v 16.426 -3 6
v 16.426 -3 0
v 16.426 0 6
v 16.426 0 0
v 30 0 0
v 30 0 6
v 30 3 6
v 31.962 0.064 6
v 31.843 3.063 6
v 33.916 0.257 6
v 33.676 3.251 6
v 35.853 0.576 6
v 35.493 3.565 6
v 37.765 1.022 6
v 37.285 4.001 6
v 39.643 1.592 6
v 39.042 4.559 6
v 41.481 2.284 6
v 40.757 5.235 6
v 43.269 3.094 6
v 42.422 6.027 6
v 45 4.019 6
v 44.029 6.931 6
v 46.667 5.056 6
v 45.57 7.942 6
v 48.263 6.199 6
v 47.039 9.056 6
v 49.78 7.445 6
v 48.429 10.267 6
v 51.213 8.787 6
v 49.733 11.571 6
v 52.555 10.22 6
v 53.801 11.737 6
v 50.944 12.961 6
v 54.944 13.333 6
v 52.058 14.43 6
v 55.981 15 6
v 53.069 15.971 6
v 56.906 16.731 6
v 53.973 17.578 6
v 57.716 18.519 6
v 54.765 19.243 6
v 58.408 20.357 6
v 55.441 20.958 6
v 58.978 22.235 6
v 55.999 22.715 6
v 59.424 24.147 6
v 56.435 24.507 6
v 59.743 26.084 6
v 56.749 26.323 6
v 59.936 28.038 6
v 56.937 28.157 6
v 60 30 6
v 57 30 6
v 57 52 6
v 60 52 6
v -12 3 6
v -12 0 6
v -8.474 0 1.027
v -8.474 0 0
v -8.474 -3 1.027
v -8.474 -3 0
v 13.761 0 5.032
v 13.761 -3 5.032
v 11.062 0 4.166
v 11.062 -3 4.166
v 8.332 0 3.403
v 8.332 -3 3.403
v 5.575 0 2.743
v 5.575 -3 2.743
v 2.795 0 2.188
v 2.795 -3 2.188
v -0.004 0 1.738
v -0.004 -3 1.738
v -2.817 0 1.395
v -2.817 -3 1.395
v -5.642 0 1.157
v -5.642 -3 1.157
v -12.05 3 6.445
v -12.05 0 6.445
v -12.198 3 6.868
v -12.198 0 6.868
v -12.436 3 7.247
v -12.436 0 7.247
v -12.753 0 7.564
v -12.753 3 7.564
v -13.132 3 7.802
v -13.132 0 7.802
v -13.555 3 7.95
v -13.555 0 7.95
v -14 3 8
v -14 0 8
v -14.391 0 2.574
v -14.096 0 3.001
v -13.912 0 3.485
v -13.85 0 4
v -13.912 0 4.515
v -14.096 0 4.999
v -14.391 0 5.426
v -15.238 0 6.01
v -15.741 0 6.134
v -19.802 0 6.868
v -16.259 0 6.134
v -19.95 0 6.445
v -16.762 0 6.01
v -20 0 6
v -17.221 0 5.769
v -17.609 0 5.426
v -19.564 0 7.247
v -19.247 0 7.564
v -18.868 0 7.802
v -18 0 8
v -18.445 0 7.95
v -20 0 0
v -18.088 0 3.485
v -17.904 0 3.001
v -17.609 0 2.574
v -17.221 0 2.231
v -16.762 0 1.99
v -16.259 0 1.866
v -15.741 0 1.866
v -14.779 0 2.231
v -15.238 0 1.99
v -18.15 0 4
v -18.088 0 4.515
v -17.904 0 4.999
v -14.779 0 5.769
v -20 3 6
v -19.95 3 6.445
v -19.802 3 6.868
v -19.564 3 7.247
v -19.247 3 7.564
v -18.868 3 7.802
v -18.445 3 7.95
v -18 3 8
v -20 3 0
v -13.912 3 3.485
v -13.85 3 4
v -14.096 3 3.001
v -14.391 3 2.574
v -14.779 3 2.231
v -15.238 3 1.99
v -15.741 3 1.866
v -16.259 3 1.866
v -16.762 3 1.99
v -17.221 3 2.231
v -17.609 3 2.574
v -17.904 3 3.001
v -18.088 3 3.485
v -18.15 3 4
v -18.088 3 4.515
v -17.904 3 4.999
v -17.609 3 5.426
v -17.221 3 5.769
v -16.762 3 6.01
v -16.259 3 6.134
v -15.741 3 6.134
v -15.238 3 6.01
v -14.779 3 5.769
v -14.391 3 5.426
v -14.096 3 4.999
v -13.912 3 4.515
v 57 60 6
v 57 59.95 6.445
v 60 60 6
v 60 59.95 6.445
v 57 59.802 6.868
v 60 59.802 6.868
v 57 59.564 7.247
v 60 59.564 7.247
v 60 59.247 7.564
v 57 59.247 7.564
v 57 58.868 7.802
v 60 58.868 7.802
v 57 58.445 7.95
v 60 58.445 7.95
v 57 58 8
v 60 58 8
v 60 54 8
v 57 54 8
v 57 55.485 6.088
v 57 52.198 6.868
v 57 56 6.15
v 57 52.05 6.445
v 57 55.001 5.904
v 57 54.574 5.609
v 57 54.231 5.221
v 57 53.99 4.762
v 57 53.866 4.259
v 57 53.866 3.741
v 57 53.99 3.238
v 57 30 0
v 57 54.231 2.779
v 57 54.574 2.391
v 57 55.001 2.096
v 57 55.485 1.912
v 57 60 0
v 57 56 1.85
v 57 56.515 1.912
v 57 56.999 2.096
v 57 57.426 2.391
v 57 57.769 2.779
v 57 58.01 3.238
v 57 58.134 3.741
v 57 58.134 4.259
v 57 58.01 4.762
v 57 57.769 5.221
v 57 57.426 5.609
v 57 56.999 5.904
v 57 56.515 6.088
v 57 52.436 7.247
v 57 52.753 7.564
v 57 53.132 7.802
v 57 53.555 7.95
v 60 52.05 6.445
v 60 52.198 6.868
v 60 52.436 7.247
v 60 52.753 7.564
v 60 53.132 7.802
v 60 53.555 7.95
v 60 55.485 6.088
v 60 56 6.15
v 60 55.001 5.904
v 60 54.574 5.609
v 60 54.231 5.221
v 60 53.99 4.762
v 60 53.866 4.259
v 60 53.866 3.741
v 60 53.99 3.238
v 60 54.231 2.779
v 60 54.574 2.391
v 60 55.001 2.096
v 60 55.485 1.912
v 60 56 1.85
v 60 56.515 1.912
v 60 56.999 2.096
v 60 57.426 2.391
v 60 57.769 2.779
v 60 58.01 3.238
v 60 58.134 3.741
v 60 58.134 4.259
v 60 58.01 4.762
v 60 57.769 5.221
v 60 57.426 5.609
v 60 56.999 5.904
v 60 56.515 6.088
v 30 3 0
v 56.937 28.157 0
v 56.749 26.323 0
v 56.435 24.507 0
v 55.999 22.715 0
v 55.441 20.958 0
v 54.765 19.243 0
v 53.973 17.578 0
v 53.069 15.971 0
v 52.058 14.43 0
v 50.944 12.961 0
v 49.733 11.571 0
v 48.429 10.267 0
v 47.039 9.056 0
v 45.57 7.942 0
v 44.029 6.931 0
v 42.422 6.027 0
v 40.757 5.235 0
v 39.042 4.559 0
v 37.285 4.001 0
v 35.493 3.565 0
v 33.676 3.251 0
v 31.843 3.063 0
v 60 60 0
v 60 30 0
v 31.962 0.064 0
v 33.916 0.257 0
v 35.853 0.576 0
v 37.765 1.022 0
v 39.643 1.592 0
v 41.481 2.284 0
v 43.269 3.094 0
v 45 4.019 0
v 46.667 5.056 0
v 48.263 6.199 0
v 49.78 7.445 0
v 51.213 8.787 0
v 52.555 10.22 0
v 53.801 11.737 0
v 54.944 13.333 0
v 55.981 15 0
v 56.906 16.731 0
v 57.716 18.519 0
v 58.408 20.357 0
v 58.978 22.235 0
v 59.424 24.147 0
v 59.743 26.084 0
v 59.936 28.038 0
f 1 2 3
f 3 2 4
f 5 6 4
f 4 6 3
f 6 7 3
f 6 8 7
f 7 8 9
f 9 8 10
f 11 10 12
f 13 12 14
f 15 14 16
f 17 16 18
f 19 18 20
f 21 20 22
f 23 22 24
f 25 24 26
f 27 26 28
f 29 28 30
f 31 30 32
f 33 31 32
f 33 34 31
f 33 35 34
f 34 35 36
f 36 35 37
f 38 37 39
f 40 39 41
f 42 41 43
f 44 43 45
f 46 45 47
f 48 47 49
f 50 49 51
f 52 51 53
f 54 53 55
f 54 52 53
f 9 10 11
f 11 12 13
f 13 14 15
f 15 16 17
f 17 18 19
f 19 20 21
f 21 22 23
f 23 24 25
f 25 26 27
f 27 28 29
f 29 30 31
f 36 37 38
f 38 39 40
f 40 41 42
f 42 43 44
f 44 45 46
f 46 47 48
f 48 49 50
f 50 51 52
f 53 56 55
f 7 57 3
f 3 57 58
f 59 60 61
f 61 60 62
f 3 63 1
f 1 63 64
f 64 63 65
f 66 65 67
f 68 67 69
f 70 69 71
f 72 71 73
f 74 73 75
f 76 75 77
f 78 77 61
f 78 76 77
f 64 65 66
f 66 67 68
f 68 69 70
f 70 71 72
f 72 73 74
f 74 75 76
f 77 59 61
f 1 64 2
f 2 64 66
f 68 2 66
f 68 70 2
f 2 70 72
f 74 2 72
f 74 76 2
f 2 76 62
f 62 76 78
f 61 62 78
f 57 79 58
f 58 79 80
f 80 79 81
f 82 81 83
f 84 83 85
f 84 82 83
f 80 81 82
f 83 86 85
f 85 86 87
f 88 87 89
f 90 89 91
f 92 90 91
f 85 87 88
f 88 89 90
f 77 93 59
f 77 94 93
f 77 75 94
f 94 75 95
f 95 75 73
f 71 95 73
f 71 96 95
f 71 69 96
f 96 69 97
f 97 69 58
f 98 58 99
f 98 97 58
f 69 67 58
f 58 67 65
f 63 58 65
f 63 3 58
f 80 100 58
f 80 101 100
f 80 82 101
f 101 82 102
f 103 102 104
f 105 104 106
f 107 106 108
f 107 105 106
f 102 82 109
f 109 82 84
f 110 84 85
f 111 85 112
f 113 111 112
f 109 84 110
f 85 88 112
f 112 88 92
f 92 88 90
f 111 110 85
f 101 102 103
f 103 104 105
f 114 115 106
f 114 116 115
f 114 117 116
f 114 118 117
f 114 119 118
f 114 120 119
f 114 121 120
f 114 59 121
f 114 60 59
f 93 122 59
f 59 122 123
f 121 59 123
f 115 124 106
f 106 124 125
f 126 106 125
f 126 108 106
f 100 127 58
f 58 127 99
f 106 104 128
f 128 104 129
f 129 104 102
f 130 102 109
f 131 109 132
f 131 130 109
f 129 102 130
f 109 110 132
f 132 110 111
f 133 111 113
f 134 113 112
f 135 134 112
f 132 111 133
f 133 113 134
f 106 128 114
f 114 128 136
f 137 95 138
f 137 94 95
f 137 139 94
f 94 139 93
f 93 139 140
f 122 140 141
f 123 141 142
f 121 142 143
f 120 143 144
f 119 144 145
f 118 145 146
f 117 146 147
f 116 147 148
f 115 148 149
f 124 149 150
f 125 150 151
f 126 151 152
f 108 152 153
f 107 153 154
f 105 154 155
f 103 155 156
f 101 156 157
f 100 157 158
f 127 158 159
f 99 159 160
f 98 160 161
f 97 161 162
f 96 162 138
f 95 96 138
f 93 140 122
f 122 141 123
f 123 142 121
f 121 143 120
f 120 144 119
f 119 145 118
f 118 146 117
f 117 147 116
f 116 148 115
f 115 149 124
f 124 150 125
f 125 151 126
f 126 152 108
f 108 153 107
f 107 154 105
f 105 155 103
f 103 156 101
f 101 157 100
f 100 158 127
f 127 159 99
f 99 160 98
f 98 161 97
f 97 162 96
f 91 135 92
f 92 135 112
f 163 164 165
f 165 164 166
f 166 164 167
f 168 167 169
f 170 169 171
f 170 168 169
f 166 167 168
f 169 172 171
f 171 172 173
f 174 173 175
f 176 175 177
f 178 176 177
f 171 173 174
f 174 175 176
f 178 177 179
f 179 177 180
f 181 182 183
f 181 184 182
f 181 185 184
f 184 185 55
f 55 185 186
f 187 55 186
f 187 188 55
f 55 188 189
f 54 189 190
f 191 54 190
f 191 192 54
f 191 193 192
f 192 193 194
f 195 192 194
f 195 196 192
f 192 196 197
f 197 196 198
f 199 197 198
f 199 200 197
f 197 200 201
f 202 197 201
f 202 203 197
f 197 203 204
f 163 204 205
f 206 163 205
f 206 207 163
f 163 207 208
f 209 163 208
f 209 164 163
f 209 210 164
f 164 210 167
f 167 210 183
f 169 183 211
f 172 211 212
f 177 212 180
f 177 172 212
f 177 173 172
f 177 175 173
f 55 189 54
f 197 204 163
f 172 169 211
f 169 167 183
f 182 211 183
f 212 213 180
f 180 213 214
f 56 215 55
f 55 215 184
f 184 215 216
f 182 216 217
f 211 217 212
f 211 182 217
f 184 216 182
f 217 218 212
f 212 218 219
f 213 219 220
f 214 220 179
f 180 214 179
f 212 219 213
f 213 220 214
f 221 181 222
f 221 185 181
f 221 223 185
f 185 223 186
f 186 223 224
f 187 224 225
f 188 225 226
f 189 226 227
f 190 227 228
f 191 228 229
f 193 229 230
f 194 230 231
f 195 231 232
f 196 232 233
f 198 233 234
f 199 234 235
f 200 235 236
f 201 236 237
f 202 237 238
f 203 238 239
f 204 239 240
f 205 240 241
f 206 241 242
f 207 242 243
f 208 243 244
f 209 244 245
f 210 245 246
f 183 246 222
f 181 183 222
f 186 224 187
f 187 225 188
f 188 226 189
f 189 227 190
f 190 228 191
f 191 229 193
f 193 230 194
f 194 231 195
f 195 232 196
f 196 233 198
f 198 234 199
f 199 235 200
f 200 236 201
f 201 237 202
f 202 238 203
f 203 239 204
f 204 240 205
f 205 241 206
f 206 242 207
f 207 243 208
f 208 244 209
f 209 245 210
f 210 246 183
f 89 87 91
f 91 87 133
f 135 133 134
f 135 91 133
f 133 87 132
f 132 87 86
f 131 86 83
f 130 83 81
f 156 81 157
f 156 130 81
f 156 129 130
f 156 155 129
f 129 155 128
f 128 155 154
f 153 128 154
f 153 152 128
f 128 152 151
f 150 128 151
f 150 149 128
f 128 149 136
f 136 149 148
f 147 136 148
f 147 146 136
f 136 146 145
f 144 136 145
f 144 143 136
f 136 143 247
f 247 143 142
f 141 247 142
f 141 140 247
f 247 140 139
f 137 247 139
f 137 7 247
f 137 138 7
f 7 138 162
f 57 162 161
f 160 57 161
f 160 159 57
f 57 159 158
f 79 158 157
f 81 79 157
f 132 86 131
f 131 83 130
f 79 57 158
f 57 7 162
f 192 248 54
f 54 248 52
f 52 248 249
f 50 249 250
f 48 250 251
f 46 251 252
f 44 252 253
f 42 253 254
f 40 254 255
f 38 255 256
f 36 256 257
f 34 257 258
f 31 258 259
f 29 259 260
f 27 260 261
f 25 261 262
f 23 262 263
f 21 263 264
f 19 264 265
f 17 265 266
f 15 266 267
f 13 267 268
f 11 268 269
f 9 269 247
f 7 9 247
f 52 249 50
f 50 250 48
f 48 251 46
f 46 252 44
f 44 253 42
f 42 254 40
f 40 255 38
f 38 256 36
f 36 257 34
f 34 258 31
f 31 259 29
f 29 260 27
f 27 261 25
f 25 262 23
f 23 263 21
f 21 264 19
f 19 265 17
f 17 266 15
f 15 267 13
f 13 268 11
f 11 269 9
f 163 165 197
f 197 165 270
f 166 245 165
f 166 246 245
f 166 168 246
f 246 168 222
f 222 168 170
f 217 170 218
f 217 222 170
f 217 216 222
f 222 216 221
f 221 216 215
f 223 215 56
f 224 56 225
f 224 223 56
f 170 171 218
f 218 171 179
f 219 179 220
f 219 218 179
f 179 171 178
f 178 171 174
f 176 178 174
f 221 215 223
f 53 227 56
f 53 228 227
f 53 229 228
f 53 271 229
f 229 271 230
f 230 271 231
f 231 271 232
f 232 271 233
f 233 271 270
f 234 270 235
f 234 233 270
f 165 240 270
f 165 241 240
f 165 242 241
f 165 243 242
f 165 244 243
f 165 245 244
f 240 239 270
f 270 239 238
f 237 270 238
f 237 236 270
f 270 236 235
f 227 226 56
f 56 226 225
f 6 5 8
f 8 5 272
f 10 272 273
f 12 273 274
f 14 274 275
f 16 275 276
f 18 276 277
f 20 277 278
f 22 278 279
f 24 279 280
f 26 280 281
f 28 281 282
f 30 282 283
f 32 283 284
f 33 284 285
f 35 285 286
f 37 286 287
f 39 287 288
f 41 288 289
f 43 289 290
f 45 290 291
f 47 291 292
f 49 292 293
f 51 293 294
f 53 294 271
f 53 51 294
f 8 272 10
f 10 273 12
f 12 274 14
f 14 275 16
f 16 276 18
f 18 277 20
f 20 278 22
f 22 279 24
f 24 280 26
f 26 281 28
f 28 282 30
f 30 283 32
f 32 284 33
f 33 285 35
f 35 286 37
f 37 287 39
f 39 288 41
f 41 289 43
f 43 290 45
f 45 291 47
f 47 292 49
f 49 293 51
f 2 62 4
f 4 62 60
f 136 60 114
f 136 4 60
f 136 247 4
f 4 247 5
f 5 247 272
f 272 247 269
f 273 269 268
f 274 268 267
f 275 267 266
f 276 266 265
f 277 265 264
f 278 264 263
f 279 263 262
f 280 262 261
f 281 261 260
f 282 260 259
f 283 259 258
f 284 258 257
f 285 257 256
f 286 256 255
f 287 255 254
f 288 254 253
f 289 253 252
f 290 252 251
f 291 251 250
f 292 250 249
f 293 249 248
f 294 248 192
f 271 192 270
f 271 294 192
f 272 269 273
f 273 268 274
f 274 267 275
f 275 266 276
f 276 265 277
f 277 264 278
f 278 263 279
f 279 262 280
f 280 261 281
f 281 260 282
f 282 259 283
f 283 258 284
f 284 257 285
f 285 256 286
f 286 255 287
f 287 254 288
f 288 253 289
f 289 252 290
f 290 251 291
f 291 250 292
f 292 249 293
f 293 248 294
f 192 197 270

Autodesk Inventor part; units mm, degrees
ref_plane "YZ Plane" through (0, 0, 0) normal (1, 0, 0) x (0, 1, 0)
ref_plane "XZ Plane" through (0, 0, 0) normal (0, 1, 0) x (-1, 0, 0)
ref_plane "XY Plane" through (0, 0, 0) normal (0, 0, 1) x (1, 0, 0)
sketch "Sketch1" plane through (0, 0, 0) normal (0, 0, 1) x (1, 0, 0)
  line L0 (0, 0) -> (60, 0) construction
  line L1 (60, 0) -> (60, 60) construction
  line L2 (60, 60) -> (0, 60) construction
  line L3 (0, 3) -> (0, 0)
  line L4 (57, 60) -> (60, 60)
  line L5 (60, 60) -> (60, 30)
  line L6 (60, 0) -> (30, 0) construction
  line L7 (30, 0) -> (30, 30) construction
  line L8 (30, 30) -> (60, 30) construction
  line L9 (60, 30) -> (60, 0) construction
  arc A0 (30, 3) -> (57, 30) centre (30, 30) ccw
  line L10 (30, 3) -> (0, 3)
  line L11 (0, 0) -> (30, 0)
  line L12 (57, 30) -> (57, 60)
  line L13 (0, 60) -> (0, 30) construction
  line L14 (0, 3) -> (0, 0) construction
  arc A1 (30, 0) -> (60, 30) centre (30, 30) ccw
  arc A2 (30, 60) -> (0, 30) centre (30, 30) ccw
  dimension "d0" = 60
  dimension "d1" = 60
  dimension "d3" = 3
  dimension "d6" = 30
extrude "Extrusion2" add sketch "Sketch1" along normal blind 6
sketch "Sketch4" plane through (0, 0, 6) normal (0, 0, 1) x (1, 0, 0)
  line L0 (60, 30) -> (60, 60) projected
  line L1 (57, 60) -> (60, 60)
  line L2 (60, 60) -> (60, 52)
  line L3 (60, 52) -> (57, 52)
  line L4 (57, 52) -> (57, 60)
  point P0 (0, 0)
  dimension "d16" = 8
extrude "Extrusion5" add sketch "Sketch4" along normal blind 2
sketch "Sketch5" plane through (57, 30, 0) normal (-1, 0, 0) x (0, 0, 1)
  circle A0 centre (4, 26) radius 2.15
  point P0 (0, -30)
  dimension "d19" = 4.3
extrude "Extrusion6" cut sketch "Sketch5" against normal through all
fillet "Fillet1" radius 2 2 edges at (58.5, 52, 8) (58.5, 60, 8)
sketch "Sketch8" plane through (0, 0, 0) normal (0, 0, 1) x (1, 0, 0)
  line L0 (0, 0) -> (-20, 0)
  line L1 (-20, 0) -> (-20, 3)
  line L2 (-20, 3) -> (0, 3)
  line L3 (0, 3) -> (0, 0)
  dimension "d32" = 20
  dimension "d33" = 3
extrude "Extrusion9" add sketch "Sketch8" along normal blind 6
sketch "Sketch9" plane through (0, 0, 6) normal (0, 0, 1) x (1, 0, 0)
  line L0 (-20, 3) -> (-20, 0) projected
  line L1 (-20, 0) -> (-12, 0)
  line L2 (-12, 0) -> (-12, 3)
  line L3 (-12, 3) -> (-20, 3)
  line L4 (-20, 3) -> (-20, 0)
  dimension "d36" = 8
extrude "Extrusion10" add sketch "Sketch9" along normal blind 2
sketch "Sketch11" plane through (30, 0, 0) normal (0, -1, 0) x (1, 0, 0)
  circle A0 centre (-46, 4) radius 2.15
  point P0 (-30, 0)
  dimension "d43" = 4.3
extrude "Extrusion12" cut sketch "Sketch11" against normal through all
fillet "Fillet3" radius 2 2 edges at (-20, 1.5, 8) (-12, 1.5, 8)
sketch "Sketch12" plane through (30, 0, 0) normal (0, -1, 0) x (1, 0, 0)
  line L0 (-48, 8) -> (-44, 8) projected
  line L1 (0, 0) -> (-50, 0) projected
  line L2 (0, 0) -> (0, 6) projected
  line L3 (-42, 6) -> (0, 6) projected
  arc A0 (-38.5519, 1.0253) -> (34.1434, 68.6948) centre (-40.5, 76) ccw projected
  line L4 (-38.474, 1.0274) -> (-38.474, 0)
  line L5 (-13.5742, 6) -> (-13.5742, 2.7948)
  arc A1 (-38.5519, 1.0253) -> (34.1434, 68.6948) centre (-40.5, 76) ccw projected
  arc A2 (-2.2901, 8) -> (37.1291, 68.4026) centre (-40.5, 76) ccw
  line L6 (-30.8178, 0) -> (-22.9501, 0)
  line L7 (-13.5742, 2.7948) -> (-13.5742, 6)
  line L8 (-13.5742, 2.4368) -> (-13.5742, 6)
  arc A3 (-38.474, 1.0274) -> (-13.5742, 6) centre (-40.5, 76) ccw
  line L9 (-38.474, 0) -> (-22.9501, 0)
  line L10 (-38.474, 1.2893) -> (-38.474, 0)
  line L11 (-19.033, 0) -> (-41.5355, 0)
  line L12 (-13.5742, 6) -> (-13.5742, 0)
  line L13 (-13.5742, 0) -> (-24.5114, 0)
  point P0 (-30, 0)
extrude "Extrusion13" add sketch "Sketch12" along normal blind 3
sketch "Sketch13" plane through (30, -3, 0) normal (0, -1, 0) x (1, 0, 0)
  line L0 (0, 0) -> (-13.5742, 0)
  line L1 (-13.5742, 0) -> (-13.5742, 6)
  line L2 (-13.5742, 6) -> (0, 6)
  line L3 (0, 6) -> (0, 0)
  point P0 (-30, 0)
extrude "Extrusion14" cut sketch "Sketch13" against normal blind 3
properties part number "FrontNetHook"
